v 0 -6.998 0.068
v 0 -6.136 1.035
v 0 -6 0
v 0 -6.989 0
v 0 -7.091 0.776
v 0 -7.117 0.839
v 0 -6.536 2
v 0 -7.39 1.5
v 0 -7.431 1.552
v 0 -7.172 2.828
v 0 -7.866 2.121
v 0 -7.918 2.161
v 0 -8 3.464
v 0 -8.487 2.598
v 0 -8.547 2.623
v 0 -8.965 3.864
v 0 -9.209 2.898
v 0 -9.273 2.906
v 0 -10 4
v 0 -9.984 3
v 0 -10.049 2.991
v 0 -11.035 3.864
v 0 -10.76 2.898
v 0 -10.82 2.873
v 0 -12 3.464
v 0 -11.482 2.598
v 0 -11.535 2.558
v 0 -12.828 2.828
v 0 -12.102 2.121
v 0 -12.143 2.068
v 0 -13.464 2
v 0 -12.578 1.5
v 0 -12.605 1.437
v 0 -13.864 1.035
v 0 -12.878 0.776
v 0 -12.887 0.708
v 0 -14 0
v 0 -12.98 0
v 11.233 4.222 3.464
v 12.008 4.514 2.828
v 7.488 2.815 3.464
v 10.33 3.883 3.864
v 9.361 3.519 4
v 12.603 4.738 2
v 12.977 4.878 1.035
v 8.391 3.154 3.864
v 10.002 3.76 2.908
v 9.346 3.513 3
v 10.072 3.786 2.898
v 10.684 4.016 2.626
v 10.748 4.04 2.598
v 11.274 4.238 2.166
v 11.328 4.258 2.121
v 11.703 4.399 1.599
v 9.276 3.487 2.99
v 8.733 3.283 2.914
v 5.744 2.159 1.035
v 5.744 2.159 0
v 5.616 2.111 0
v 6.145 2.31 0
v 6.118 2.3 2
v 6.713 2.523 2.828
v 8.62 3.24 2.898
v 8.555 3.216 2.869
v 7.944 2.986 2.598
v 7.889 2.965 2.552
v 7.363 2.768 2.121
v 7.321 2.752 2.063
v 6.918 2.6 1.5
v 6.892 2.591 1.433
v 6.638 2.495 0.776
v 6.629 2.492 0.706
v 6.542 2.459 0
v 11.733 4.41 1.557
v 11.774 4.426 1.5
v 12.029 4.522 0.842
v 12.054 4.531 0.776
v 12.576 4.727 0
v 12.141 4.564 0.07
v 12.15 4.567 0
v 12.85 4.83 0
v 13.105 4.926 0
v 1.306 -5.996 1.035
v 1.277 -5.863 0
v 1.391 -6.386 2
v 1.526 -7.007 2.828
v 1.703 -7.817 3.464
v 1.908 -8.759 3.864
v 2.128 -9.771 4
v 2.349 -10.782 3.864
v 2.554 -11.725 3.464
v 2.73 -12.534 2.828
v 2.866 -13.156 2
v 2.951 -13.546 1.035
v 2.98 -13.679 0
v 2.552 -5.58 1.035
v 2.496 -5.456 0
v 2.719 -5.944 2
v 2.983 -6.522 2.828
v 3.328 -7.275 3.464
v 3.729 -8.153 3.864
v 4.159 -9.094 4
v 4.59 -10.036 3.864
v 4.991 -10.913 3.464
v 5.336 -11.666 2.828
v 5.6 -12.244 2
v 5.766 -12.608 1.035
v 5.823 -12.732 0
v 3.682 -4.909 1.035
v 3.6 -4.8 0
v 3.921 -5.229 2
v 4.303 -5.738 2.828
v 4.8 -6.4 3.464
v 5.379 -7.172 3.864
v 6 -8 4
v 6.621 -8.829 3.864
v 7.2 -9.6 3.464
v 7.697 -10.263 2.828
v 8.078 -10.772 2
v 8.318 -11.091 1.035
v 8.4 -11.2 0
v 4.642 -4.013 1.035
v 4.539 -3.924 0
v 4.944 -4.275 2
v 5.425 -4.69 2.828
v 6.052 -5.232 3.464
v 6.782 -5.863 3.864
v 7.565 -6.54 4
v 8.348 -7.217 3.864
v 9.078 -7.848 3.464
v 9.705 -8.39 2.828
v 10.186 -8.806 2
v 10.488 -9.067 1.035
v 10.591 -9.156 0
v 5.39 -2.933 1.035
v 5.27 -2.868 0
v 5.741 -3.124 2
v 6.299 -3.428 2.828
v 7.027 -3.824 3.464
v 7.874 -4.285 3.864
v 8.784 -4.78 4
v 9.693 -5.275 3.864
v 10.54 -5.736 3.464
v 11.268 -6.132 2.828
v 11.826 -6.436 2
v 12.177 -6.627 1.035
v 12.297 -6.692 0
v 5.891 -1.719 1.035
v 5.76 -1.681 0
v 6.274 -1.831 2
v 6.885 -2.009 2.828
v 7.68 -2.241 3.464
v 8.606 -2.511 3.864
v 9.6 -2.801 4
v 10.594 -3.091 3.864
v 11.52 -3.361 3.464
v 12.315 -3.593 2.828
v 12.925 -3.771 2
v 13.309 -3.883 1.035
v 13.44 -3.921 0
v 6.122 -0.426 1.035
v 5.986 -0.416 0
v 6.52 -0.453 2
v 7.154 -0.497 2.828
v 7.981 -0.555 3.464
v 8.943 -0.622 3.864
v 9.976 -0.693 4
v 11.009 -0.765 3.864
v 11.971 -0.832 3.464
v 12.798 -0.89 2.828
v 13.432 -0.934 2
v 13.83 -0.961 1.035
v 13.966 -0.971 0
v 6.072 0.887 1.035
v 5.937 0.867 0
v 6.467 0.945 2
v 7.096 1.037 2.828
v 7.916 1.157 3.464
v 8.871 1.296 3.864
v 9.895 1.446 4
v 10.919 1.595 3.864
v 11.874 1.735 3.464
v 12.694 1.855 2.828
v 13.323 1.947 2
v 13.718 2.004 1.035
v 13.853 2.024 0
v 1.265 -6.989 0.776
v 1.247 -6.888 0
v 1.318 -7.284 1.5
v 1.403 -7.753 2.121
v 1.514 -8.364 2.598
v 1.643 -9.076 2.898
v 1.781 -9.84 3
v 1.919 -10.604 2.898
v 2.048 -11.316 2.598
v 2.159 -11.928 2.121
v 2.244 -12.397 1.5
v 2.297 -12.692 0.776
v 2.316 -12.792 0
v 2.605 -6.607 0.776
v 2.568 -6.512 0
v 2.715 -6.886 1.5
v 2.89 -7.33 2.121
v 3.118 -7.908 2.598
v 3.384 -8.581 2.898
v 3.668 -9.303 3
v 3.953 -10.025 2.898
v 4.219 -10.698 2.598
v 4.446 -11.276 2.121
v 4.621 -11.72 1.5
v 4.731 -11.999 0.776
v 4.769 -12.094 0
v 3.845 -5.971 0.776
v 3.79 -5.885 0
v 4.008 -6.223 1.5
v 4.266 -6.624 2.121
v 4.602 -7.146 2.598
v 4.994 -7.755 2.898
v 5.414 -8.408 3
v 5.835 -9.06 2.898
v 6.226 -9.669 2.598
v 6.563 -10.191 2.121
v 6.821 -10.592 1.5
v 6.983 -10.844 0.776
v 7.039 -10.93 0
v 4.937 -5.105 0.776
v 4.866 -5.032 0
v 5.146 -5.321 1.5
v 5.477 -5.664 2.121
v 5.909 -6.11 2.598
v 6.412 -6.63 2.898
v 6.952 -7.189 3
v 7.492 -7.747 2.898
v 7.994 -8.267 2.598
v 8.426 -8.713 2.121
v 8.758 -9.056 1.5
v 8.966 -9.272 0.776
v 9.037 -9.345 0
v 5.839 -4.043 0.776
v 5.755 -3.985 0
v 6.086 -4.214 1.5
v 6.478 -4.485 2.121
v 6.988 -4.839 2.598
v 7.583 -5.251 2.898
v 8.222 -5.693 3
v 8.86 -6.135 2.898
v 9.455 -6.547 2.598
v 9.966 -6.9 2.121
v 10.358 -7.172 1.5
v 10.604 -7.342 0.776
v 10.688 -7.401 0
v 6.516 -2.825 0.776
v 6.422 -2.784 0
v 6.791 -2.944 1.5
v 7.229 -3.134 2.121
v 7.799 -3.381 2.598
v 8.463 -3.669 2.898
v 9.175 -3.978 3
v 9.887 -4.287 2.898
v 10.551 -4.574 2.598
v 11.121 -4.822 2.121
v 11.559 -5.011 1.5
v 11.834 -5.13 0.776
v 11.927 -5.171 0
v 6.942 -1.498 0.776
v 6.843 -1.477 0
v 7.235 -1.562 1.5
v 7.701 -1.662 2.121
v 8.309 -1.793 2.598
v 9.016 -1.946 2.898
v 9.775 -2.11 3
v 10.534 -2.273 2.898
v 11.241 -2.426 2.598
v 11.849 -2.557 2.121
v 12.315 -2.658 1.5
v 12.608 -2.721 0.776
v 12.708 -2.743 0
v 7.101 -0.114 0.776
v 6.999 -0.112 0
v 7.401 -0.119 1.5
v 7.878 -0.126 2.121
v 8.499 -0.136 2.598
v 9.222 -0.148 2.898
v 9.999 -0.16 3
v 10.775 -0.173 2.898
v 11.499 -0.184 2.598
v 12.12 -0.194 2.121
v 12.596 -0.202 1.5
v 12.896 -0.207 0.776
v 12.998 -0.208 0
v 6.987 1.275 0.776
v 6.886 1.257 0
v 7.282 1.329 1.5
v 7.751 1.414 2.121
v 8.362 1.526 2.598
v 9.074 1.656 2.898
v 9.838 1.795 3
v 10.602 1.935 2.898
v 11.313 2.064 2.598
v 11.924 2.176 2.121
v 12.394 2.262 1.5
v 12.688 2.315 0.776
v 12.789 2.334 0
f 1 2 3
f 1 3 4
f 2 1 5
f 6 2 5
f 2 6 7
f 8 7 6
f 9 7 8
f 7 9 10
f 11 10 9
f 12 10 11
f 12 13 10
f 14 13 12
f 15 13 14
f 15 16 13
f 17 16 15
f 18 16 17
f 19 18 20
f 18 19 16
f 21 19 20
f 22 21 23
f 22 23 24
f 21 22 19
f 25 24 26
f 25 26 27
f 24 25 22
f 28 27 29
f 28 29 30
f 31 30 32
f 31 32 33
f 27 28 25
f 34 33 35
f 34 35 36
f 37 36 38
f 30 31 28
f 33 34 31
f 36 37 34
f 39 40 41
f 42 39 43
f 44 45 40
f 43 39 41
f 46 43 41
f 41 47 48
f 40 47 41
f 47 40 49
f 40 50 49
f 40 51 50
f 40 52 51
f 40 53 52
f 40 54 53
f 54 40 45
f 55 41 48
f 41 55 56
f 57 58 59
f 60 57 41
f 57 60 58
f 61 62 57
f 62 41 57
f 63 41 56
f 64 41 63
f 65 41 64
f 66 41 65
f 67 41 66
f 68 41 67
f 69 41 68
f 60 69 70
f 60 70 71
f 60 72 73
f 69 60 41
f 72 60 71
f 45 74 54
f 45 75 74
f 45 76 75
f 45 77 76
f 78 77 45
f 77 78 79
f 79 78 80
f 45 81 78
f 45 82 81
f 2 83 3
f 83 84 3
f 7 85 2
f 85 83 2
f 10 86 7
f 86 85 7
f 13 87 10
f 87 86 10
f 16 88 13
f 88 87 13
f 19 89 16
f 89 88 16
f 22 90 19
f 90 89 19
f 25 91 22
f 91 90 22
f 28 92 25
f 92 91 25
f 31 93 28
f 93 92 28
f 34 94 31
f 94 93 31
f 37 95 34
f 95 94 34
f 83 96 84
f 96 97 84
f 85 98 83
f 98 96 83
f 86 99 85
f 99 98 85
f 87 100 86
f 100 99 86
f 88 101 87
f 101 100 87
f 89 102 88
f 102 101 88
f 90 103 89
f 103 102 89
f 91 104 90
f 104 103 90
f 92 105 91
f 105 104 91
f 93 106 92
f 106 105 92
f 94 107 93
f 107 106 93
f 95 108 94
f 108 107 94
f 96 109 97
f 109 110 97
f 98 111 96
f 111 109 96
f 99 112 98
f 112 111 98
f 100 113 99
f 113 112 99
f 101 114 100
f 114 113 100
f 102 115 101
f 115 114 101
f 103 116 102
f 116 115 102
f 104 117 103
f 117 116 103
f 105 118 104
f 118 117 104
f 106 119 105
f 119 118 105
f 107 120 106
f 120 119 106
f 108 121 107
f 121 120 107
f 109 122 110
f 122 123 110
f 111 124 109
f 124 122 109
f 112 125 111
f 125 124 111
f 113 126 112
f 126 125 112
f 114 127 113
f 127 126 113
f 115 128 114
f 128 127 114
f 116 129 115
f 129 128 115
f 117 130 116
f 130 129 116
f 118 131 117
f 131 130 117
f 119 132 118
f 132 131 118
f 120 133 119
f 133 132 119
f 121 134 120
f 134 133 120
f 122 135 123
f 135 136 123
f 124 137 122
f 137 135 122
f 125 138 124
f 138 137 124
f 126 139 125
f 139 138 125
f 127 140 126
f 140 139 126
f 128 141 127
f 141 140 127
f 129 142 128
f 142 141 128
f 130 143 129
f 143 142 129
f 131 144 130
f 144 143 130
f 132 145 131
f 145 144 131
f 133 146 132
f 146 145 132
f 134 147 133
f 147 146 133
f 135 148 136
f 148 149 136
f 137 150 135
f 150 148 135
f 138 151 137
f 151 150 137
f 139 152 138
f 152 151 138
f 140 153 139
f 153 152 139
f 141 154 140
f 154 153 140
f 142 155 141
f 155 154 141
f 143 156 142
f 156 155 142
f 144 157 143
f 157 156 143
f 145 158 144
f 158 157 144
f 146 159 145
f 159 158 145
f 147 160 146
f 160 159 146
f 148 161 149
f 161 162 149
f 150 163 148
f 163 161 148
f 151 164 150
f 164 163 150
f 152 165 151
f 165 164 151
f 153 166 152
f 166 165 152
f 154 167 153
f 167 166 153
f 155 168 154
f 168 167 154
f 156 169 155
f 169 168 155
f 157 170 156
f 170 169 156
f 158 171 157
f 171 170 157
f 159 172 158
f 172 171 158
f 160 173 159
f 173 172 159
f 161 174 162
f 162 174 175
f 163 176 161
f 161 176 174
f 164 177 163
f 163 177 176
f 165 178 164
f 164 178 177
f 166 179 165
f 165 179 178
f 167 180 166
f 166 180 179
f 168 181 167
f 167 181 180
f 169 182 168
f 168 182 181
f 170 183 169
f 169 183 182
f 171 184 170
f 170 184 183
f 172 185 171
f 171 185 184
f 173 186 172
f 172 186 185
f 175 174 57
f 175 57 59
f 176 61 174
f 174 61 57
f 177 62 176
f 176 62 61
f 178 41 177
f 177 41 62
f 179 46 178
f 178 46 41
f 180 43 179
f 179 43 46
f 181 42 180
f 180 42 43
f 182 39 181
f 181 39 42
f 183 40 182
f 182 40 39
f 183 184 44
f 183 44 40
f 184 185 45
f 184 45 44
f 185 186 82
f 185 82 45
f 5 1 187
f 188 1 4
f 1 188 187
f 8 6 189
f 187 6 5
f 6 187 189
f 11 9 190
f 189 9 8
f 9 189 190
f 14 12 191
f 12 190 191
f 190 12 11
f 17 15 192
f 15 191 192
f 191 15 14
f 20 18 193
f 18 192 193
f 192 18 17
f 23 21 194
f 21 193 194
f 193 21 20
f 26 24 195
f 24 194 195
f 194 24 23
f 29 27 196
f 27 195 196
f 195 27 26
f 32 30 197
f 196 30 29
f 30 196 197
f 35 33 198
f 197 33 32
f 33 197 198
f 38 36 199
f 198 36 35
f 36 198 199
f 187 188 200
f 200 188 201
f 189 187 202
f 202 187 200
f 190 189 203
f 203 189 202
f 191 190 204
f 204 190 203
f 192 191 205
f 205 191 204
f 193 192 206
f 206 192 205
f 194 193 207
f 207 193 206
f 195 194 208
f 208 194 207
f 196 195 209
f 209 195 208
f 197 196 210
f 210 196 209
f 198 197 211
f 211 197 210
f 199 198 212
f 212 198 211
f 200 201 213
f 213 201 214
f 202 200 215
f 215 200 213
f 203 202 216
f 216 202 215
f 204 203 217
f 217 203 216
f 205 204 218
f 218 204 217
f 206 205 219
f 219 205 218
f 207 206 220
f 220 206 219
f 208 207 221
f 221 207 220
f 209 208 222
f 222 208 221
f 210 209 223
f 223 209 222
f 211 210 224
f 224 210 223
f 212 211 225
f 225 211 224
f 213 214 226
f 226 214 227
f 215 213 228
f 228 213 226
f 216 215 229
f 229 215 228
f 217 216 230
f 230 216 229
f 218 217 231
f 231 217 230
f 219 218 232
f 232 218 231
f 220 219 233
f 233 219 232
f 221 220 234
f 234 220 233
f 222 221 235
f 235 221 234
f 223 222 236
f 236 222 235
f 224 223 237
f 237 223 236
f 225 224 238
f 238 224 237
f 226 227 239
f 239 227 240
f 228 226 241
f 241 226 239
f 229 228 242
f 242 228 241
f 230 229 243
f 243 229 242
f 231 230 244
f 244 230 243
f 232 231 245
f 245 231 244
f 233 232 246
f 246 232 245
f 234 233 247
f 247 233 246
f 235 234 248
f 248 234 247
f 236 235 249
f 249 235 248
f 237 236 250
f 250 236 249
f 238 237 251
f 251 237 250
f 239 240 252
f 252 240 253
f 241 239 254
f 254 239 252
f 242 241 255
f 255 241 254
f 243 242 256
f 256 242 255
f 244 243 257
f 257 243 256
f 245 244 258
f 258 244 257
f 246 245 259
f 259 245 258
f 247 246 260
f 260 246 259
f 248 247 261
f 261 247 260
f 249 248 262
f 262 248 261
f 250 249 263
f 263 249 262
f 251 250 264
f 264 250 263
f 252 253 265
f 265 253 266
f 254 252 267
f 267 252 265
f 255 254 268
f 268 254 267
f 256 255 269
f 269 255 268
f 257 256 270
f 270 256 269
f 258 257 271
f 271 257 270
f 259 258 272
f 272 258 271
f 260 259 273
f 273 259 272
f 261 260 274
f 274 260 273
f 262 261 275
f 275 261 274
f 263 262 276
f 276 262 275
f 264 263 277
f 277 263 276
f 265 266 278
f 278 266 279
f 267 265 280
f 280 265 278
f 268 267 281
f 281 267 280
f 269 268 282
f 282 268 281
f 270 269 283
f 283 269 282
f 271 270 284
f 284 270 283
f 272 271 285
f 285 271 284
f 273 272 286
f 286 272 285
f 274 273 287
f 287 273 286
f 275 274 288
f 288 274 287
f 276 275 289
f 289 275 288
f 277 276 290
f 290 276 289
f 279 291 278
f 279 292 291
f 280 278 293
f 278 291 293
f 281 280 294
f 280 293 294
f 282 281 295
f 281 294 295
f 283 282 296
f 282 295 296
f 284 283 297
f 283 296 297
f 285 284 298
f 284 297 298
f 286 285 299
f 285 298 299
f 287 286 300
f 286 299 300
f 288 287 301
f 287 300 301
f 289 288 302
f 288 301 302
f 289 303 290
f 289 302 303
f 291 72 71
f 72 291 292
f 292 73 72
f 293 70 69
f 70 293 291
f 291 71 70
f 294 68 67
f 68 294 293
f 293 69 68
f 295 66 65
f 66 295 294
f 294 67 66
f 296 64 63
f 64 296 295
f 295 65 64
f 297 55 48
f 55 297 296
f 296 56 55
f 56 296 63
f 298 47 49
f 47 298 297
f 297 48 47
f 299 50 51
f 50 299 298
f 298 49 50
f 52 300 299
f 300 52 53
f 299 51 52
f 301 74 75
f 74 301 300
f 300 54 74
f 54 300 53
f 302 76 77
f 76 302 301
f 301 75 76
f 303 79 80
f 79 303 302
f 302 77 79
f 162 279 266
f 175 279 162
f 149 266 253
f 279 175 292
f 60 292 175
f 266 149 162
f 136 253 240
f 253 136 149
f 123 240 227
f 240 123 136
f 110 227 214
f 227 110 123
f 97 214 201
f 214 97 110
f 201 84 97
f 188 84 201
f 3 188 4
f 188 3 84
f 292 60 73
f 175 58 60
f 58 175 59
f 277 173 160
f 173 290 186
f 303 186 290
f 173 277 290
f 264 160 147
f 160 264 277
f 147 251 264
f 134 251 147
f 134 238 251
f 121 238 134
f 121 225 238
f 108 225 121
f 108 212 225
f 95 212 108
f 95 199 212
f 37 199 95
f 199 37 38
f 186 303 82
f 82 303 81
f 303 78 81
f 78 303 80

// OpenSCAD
// file: ../build_environments.scad
// build_environments.scad: modules to build level sections
//

module pool(diameter=10.0, wall_height=2.0, step_width=3.0, connections=[])
{
    difference() {
        union() {
        difference() {
            cylinder(h=0.5,r1=diameter+step_width,r2=diameter+step_width,$fn=48);
            translate([0,0,-0.1])
                cylinder(h=0.7,r1=diameter,r2=diameter,$fn=48);
        }
        difference() {
            cylinder(h=wall_height,r1=diameter+step_width+1.0,r2=diameter+step_width+1.0,$fn=48);
            translate([0,0,-0.1])
                cylinder(h=wall_height+0.2,r1=diameter+step_width,r2=diameter+step_width,$fn=48);
        }
        }
    
        for (c = connections)
        {
            rotate([0,90,0]) {
                angle = atan2(c[1],c[0]);
                rotate([-angle,0,0]) {
                    cylinder(h=diameter+5.0,r1=c[2],r2=c[2],$fn=48);
                }
            }
        }
    }
}

module straight(length=10.0, width=2.0, dy1=0.0, dy2=0.0, dz=0.0)
{
    dims = [0, 0, 0, 0, 0, (dz/length)];
    matrix = [
        [ 1, dims[0], dims[1], 0 ],
        [ dims[2], 1, dims[4], 0 ],
        [ dims[5], dims[3], 1, 0 ],
        [ 0, 0, 0, 1 ]
    ];
    multmatrix(matrix)
    difference() {
        translate([dy1,0,0])
        union() {
            rotate([0,90,0]) {
                difference() {
                    cylinder(h=(length-dy1-dy2),r1=width+1.0,r2=width+1.0,$fn=24);
                    translate([0,0,-0.1])
                        cylinder(h=(length-dy1-dy2+0.2),r1=width,r2=width,$fn=24);
                }
                difference() {
                    cylinder(h=1.0,r1=width+2.0,r2=width+2.0,$fn=24);
                    translate([0,0,-0.1])
                        cylinder(h=1.2,r1=width,r2=width,$fn=24);
                }
                translate([0,0,(length-dy1-dy2)-1.0]) {
                    difference() {
                        cylinder(h=1.0,r1=width+2.0,r2=width+2.0,$fn=24);
                        translate([0,0,-0.1])
                            cylinder(h=1.2,r1=width,r2=width,$fn=24);
                    }
                }
            }
        }
        translate([0,0,-(2*width+4.0)/2])
            cube([3*length,3*length,2*width+4.0],center=true);
    }
}

module curve(p0=[0,0], center=[0,0], dir=1, angle=0.0, width=2.0)
{
    radius = sqrt((p0[0]-center[0])*(p0[0]-center[0]) + (p0[1]-center[1])*(p0[1]-center[1]));
    if (dir == 0) {
        difference() {
            rotate([0,0,-90])
            difference() {
                rotate_extrude(angle = angle, convexity = 10, $fn=32)
                    translate([radius, 0, 0])
                        circle(r = width+1.0,$fn=24);
                rotate([0,0,-1.0])
                    rotate_extrude(angle = angle+2.0, convexity = 10, $fn=32)
                        translate([radius, 0, 0])
                            circle(r = width,$fn=24);
            }
            translate([0,0,-(2*width+4.0)/2])
                cube([5*radius,5*radius,2*width+4.0],center=true);
        }
    }
    else {
        difference() {
            rotate([0,0,90])
            difference() {
                rotate_extrude(angle = -angle, convexity = 10, $fn=32)
                    translate([radius, 0, 0])
                        circle(r = width+1.0,$fn=24);
                rotate([0,0,1.0])
                    rotate_extrude(angle = -angle-2.0, convexity = 10, $fn=32)
                        translate([radius, 0, 0])
                            circle(r = width,$fn=24);
            }
            translate([0,0,-(2*width+4.0)/2])
                cube([5*radius,5*radius,2*width+4.0],center=true);
        }
    }

}

// test pool
//pool(diameter=12.0000, wall_height=3.0000, step_width=3.0000, connections=[[0.0000,-26.0000,2.0000], [23.6074,0.0000,2.0000]]);

// test straight, slope
//straight(length=26.0000, width=2.0000, dy1=11.8322, dy2=6.7082, dz=0.0000);
//straight(length=29.1549, width=12.0000, dy1=0.0000, dy2=0.0000, dz=-15.0000);

// test curve
//curve(p0=[23.6074, 0.0000], center=[23.6074, 5.0000], dir=0, angle=60.1011, width=2.0000);
//curve(p0=[33.6426, 12.4219], center=[37.9771, 9.9295], dir=1, angle=120.4627, width=2.0000);
// main file
use <../build_environments.scad>;
curve(p0=[9.1774, -22.0956], center=[9.6305, -32.0854], dir=0, angle=110.6016, width=3.0000);
